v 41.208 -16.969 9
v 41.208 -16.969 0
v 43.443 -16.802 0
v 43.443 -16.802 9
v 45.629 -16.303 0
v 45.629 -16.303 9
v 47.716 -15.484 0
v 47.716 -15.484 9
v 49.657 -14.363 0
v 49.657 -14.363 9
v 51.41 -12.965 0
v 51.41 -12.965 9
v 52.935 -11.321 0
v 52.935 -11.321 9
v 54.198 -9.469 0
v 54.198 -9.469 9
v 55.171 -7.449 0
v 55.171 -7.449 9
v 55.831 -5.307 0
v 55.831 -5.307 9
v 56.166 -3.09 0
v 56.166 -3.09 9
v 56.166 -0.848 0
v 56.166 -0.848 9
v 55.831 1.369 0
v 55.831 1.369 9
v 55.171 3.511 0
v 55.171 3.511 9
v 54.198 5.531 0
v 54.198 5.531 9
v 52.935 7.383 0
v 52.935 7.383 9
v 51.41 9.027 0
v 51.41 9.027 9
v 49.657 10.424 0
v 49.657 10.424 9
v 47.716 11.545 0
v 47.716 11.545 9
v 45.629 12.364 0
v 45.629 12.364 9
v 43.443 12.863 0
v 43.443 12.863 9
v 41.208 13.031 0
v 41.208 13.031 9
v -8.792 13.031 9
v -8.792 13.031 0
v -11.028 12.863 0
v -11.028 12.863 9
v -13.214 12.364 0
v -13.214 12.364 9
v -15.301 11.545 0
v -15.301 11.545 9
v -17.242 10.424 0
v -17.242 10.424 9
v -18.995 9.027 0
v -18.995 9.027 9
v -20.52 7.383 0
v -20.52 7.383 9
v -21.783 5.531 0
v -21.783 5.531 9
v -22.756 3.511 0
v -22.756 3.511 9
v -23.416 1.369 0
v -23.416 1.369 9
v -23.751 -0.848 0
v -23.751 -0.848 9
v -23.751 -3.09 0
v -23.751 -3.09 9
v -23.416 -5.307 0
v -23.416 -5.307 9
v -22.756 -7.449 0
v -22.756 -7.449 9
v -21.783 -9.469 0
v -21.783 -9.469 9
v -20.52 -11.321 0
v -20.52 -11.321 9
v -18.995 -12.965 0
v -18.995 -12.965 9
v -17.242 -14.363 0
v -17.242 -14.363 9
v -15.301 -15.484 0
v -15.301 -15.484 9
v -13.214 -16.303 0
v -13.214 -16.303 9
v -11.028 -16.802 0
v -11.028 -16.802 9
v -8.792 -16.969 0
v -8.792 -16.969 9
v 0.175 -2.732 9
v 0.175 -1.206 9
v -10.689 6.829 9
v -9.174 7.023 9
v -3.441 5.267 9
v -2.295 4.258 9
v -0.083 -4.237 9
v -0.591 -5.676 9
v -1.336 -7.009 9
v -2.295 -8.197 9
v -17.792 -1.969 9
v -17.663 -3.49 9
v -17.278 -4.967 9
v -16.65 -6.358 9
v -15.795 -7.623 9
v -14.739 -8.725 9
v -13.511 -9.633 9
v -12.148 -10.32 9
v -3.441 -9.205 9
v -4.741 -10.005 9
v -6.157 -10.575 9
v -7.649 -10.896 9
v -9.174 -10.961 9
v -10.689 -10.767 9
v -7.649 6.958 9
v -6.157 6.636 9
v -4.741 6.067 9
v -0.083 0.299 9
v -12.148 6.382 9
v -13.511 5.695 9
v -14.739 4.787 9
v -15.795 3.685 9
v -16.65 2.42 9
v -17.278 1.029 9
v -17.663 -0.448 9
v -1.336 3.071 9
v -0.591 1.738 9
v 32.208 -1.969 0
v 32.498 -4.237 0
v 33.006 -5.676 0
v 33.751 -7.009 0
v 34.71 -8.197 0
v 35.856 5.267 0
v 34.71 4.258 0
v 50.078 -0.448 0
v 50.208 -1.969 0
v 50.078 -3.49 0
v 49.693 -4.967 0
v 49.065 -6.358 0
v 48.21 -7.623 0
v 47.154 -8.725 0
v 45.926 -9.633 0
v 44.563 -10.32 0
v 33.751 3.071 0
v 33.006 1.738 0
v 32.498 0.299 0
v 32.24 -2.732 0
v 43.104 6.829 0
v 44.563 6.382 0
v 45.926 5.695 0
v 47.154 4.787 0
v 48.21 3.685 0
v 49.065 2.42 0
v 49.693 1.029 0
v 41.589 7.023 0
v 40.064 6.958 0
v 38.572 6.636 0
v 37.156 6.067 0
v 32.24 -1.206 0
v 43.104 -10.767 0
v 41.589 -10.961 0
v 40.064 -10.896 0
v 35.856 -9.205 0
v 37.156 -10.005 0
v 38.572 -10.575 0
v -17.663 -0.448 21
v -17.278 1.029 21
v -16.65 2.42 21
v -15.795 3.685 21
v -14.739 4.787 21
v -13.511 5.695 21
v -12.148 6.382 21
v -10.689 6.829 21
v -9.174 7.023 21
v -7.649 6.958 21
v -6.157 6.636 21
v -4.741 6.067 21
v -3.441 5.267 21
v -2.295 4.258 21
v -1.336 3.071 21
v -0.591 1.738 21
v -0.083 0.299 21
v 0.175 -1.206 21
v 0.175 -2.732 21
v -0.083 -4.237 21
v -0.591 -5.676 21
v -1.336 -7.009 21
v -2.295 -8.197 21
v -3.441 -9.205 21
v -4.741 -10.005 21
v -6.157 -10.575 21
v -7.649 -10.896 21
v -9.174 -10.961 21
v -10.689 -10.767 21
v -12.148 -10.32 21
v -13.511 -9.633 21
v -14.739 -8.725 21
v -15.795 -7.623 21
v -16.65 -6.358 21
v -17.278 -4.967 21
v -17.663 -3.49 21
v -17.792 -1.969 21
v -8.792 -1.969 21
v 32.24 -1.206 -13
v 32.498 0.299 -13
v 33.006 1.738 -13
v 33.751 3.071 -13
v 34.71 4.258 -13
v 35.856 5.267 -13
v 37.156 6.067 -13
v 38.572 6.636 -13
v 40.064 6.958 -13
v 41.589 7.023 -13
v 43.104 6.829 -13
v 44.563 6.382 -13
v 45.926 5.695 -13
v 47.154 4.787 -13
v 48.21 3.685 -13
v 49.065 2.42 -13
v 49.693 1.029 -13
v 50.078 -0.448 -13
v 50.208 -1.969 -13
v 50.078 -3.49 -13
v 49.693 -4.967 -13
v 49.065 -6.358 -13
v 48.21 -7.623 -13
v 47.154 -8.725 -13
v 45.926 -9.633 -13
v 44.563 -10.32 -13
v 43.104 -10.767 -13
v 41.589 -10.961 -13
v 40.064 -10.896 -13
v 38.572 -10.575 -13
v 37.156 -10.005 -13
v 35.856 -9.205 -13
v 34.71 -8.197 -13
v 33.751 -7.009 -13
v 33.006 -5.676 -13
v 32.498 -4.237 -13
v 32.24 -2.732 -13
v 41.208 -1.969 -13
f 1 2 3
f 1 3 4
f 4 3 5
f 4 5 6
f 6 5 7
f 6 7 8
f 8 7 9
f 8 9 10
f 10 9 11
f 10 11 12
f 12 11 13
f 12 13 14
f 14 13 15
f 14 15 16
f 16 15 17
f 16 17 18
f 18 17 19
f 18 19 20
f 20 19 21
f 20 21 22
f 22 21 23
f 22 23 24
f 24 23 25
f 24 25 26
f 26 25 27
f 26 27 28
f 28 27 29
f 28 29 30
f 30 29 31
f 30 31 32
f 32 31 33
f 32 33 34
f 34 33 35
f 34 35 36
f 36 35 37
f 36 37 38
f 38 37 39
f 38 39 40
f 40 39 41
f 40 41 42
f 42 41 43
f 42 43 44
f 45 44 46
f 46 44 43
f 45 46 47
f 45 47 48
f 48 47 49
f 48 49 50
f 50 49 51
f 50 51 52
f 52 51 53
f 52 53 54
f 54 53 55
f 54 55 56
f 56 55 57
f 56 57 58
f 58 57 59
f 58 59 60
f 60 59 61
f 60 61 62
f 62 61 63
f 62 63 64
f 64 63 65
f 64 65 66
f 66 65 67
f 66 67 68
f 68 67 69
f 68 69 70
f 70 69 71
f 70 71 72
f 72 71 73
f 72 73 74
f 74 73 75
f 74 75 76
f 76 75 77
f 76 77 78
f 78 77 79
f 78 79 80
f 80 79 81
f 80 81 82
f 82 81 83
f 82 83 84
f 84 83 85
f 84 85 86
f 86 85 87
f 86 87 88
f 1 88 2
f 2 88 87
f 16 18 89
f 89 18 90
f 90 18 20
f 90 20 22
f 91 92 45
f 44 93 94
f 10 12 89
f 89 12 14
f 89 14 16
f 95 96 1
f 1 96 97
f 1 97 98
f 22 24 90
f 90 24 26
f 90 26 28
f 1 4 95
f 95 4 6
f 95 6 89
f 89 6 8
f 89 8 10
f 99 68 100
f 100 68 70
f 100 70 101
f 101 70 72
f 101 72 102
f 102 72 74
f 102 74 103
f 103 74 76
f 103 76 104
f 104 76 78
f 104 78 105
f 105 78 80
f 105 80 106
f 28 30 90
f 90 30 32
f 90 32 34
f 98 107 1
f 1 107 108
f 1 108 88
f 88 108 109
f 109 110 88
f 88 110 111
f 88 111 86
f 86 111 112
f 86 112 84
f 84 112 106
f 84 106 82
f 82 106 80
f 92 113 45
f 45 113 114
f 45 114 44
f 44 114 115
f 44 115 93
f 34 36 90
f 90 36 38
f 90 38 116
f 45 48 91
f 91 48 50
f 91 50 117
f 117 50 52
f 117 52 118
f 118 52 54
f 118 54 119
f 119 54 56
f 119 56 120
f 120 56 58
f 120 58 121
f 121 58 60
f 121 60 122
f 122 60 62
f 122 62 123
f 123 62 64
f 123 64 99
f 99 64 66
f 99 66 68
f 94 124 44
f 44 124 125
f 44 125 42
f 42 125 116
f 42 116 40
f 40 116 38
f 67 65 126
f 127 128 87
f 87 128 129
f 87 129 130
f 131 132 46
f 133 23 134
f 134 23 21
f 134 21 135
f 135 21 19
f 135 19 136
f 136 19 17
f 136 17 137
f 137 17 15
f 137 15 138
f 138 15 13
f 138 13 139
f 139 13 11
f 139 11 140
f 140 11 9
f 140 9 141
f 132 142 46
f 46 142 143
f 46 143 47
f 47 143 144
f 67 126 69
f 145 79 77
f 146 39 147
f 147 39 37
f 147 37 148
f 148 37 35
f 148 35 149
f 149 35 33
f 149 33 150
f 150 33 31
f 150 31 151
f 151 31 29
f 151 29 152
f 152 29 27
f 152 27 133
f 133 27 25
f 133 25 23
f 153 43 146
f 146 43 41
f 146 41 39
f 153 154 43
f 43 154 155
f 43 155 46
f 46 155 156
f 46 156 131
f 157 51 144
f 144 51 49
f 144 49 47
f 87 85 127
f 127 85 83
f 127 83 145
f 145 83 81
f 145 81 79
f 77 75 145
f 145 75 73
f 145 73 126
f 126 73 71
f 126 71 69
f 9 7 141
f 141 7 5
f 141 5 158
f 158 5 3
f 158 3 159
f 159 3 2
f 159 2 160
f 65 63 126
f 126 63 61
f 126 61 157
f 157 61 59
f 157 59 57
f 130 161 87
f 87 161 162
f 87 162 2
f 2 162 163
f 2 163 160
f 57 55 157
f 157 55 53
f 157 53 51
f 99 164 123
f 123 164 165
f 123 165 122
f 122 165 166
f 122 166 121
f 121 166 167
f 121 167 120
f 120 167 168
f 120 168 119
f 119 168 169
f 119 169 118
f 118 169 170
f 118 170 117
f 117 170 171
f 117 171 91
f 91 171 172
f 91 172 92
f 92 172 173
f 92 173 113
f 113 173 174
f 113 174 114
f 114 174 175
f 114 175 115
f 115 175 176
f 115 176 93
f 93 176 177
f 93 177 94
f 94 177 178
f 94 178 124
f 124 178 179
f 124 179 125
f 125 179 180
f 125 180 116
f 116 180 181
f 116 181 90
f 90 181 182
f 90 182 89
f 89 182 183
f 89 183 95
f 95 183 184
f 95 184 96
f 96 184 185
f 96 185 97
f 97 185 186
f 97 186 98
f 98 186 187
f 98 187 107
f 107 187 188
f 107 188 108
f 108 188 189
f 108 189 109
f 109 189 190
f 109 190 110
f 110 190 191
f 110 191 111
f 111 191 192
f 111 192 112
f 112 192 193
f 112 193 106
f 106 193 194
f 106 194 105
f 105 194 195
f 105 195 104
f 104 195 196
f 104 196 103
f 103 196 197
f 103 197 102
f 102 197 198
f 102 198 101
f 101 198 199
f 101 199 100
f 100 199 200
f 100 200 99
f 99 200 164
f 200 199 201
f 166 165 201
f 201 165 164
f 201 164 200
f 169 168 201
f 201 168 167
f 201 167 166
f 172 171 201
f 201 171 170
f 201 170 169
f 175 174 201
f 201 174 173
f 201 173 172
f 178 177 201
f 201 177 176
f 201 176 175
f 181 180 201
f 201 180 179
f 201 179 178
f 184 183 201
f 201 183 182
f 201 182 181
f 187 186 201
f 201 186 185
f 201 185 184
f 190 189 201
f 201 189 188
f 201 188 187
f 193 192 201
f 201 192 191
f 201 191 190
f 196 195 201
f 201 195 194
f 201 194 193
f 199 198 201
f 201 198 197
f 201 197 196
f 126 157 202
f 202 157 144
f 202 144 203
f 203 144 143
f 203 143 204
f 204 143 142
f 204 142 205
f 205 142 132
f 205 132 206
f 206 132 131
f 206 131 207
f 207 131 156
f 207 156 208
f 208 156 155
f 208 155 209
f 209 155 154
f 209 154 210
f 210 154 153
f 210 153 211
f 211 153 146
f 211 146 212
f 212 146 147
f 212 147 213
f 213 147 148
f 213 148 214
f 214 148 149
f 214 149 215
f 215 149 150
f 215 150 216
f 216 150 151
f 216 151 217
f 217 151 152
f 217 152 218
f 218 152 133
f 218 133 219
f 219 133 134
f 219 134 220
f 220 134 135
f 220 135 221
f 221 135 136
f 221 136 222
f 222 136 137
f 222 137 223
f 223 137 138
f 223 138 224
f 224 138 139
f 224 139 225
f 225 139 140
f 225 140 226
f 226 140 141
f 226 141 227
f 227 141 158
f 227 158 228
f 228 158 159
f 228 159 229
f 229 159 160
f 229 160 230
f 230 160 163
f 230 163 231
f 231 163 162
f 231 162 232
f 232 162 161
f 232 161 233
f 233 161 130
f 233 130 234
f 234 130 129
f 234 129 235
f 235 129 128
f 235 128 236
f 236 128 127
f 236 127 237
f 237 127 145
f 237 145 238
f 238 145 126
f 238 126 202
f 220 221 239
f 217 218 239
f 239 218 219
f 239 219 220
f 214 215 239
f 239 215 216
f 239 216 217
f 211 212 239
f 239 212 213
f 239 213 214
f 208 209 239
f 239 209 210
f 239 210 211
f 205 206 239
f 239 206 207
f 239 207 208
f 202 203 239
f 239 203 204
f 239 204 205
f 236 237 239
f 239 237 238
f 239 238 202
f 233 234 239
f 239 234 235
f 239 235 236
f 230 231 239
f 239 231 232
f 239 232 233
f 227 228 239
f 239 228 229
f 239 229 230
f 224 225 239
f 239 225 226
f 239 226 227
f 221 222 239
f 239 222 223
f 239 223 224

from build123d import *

# Parameters (mm, degrees)
SALIENTE_EXTRUIR1_DEPTH = 9
CROQUIS2_R              = 9
SALIENTE_EXTRUIR2_DEPTH = 12
CROQUIS2_2_R            = 9
SALIENTE_EXTRUIR3_DEPTH = 22


with BuildPart() as part:
    # Croquis1 → Saliente-Extruir1 (new body)
    with BuildSketch(Plane.XY):
        with BuildLine():
            Line((-8.792487614, 13.030881789), (41.207512386, 13.030881789))
            ThreePointArc((41.207512386, 13.030881789), (56.207512386, -1.969118211), (41.207512386, -16.969118211))
            Line((41.207512386, -16.969118211), (-8.792487614, -16.969118211))
            ThreePointArc((-8.792487614, -16.969118211), (-23.792487614, -1.969118211), (-8.792487614, 13.030881789))
        make_face()
    extrude(amount=SALIENTE_EXTRUIR1_DEPTH)

    # Croquis2 → Saliente-Extruir2 (add)
    with BuildSketch(Plane.XY.offset(9)):
        with Locations((-8.792487614, -1.969118211)):
            Circle(CROQUIS2_R)
    extrude(amount=SALIENTE_EXTRUIR2_DEPTH)

    # Croquis2<2> → Saliente-Extruir3 (add)
    with BuildSketch(Plane.XY.offset(9)):
        with Locations((41.207512386, -1.969118211)):
            Circle(CROQUIS2_2_R)
    extrude(amount=-SALIENTE_EXTRUIR3_DEPTH)


solid = part.part
